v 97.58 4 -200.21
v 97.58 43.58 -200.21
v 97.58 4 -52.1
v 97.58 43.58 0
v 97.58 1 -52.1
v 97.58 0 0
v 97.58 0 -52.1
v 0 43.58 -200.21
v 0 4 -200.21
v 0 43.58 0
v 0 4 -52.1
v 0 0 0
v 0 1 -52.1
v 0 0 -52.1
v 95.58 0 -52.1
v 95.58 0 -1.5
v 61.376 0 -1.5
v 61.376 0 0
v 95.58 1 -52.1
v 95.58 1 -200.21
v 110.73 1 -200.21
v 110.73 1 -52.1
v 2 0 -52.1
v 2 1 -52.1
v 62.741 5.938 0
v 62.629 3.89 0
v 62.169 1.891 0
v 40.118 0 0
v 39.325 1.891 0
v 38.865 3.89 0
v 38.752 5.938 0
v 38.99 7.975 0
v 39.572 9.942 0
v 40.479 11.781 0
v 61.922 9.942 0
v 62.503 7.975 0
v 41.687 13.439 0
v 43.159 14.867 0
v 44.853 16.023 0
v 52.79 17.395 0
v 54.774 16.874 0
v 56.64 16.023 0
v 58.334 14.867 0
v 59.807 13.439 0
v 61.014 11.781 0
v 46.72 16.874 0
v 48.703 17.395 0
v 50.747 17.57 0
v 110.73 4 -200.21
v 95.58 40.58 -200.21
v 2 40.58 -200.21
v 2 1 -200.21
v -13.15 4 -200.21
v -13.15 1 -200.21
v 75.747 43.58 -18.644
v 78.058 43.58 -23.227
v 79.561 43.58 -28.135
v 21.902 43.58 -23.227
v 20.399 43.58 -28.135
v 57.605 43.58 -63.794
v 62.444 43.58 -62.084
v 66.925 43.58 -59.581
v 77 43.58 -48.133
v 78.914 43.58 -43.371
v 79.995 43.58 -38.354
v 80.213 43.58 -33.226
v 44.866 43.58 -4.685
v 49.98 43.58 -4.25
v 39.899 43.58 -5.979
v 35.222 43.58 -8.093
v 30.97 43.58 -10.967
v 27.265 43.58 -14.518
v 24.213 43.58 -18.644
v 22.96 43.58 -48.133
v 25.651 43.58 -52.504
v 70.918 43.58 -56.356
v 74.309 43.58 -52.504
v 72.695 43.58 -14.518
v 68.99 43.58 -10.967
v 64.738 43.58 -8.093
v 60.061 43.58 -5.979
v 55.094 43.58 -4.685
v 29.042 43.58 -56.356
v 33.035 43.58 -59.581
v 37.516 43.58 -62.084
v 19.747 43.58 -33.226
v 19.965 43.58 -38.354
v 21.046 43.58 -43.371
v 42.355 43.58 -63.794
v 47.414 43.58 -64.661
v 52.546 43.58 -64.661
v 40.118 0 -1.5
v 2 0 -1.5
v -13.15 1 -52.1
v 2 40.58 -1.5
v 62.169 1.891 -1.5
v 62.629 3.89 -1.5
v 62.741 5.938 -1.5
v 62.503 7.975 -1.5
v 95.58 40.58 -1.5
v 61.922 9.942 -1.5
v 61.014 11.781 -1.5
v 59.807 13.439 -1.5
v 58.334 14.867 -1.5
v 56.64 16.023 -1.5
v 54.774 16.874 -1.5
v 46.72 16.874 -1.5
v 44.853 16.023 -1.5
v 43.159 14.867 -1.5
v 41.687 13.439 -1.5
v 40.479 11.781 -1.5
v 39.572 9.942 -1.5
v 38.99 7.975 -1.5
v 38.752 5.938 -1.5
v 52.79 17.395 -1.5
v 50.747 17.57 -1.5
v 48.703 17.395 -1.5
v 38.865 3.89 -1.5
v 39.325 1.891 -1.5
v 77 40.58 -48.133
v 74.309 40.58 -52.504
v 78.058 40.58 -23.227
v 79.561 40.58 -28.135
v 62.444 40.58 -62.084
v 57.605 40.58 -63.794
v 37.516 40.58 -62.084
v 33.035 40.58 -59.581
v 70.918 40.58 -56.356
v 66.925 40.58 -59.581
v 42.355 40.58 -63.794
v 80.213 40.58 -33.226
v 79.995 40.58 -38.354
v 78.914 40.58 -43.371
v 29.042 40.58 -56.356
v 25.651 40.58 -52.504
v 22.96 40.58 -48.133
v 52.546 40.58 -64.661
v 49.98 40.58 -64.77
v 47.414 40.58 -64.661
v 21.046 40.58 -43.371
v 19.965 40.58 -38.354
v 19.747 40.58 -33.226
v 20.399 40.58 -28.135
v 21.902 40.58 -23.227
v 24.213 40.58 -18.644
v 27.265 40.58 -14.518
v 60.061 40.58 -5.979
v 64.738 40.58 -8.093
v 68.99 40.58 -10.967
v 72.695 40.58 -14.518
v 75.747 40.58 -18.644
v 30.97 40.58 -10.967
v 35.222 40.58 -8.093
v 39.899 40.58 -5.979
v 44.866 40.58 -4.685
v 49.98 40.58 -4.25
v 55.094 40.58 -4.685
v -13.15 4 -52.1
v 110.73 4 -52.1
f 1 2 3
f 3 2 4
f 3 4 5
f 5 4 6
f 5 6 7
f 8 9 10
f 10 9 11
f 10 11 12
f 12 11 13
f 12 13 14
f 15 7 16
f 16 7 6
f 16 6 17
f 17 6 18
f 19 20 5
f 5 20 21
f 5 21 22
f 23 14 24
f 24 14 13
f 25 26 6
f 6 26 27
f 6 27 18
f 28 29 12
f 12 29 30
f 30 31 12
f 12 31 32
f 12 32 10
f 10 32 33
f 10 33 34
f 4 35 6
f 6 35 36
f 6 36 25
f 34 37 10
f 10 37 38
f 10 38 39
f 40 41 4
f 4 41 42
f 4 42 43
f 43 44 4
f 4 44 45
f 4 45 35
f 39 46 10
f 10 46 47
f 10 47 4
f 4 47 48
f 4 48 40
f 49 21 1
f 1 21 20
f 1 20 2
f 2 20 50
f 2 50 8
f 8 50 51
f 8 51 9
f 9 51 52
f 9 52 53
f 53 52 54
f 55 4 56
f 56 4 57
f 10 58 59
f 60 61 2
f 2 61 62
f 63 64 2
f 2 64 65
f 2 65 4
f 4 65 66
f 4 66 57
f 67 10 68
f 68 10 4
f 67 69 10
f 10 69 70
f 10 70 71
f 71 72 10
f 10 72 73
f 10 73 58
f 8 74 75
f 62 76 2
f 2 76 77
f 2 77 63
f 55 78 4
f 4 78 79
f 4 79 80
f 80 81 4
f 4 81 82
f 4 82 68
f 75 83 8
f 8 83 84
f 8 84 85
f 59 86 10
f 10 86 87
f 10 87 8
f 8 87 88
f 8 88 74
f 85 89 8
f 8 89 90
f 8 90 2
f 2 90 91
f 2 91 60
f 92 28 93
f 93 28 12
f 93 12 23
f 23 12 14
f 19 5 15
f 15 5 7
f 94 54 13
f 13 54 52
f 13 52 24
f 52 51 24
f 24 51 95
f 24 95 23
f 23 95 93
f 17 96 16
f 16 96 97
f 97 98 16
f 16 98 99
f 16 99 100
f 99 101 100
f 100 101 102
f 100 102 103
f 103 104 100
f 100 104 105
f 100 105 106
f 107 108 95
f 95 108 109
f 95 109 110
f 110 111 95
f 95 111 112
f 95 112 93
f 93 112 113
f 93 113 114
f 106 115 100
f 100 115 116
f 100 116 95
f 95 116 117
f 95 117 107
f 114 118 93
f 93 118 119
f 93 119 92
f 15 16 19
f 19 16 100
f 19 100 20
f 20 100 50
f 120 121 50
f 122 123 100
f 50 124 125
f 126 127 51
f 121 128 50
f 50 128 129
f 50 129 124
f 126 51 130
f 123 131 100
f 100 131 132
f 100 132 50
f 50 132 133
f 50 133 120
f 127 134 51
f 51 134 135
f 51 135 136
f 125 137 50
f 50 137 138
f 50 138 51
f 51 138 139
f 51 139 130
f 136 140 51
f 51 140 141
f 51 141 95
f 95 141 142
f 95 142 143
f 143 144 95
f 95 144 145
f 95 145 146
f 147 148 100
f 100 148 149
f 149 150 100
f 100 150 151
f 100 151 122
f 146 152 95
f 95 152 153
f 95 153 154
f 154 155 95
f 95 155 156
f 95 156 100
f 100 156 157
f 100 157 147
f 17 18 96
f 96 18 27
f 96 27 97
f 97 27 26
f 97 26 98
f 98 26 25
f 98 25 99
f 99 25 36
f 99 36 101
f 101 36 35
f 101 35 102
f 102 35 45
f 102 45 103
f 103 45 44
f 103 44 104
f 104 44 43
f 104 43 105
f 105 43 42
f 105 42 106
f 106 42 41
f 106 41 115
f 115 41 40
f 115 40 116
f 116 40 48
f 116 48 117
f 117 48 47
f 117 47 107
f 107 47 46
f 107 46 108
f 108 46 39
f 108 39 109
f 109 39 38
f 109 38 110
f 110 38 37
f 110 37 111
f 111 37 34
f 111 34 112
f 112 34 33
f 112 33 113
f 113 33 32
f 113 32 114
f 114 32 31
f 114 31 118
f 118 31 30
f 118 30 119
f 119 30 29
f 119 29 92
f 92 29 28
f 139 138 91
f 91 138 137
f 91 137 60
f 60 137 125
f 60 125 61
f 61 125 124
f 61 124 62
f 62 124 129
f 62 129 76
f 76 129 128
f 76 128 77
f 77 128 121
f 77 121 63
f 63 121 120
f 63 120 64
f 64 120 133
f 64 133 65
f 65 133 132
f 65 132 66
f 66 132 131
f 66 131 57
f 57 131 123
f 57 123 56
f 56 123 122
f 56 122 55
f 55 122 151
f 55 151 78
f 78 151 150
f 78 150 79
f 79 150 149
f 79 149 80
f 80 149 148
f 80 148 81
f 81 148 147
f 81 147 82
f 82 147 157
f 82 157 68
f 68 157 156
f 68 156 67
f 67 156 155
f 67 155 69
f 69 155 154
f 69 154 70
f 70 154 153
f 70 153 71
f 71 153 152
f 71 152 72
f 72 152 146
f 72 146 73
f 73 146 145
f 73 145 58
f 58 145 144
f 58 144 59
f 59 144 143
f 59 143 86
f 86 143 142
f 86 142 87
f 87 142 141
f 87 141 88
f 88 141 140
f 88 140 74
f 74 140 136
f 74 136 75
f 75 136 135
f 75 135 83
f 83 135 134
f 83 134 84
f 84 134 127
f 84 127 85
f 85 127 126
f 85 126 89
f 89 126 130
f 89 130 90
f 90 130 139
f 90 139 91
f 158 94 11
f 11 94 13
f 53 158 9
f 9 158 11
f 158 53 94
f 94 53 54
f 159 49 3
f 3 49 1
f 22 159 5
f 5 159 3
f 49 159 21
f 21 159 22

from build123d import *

# Parameters (mm, degrees)
SKETCH1_W           = 97.58
SKETCH1_H           = 200.21
BOSS_EXTRUDE1_DEPTH = 43.58
SKETCH2_W           = 2
SKETCH2_H           = 148.11
CUT_EXTRUDE1_DEPTH  = 1
SKETCH3_W           = 148.11
SKETCH3_H           = 1
CUT_EXTRUDE2_DEPTH  = 100
SKETCH4_W           = 93.58
SKETCH4_H           = 50.6
CUT_EXTRUDE4_DEPTH  = 40.58
SKETCH5_W           = 93.58
SKETCH5_H           = 148.11
CUT_EXTRUDE5_DEPTH  = 39.58
SKETCH6_R           = 12
CUT_EXTRUDE6_DEPTH  = 39.58
SKETCH7_R           = 30.26
CUT_EXTRUDE7_DEPTH  = 39.58
SKETCH10_W          = 148.11
SKETCH10_H          = 3
BOSS_EXTRUDE2_DEPTH = 13.15
SKETCH11_W          = 148.11
SKETCH11_H          = 3
BOSS_EXTRUDE3_DEPTH = 13.15


with BuildPart() as part:
    # Sketch1 → Boss-Extrude1 (new body)
    with BuildSketch(Plane(origin=(0, 0, 0), x_dir=(1, 0, 0), z_dir=(0, 1, 0))):
        with Locations((48.79, 100.105)):
            Rectangle(SKETCH1_W, SKETCH1_H)
    extrude(amount=BOSS_EXTRUDE1_DEPTH)

    # Sketch2 → Cut-Extrude1 (cut)
    with BuildSketch(Plane.XZ):
        with Locations((1, -126.155)):
            Rectangle(SKETCH2_W, SKETCH2_H)
    extrude(amount=-CUT_EXTRUDE1_DEPTH, mode=Mode.SUBTRACT)

    # Sketch3 → Cut-Extrude2 (cut)
    with BuildSketch(Plane.ZY.offset(-2)):
        with Locations((-126.155, 0.5)):
            Rectangle(SKETCH3_W, SKETCH3_H)
    extrude(amount=-CUT_EXTRUDE2_DEPTH, mode=Mode.SUBTRACT)

    # Sketch4 → Cut-Extrude4 (cut)
    with BuildSketch(Plane(origin=(0, 0, 0), x_dir=(-1, 0, 0), z_dir=(0, -1, 0))):
        with Locations((-48.79, 26.8)):
            Rectangle(SKETCH4_W, SKETCH4_H)
    extrude(amount=-CUT_EXTRUDE4_DEPTH, mode=Mode.SUBTRACT)

    # Sketch5 → Cut-Extrude5 (cut)
    with BuildSketch(Plane(origin=(0, 1, 0), x_dir=(-1, 0, 0), z_dir=(0, -1, 0))):
        with Locations((-48.79, 126.155)):
            Rectangle(SKETCH5_W, SKETCH5_H)
    extrude(amount=-CUT_EXTRUDE5_DEPTH, mode=Mode.SUBTRACT)

    # Sketch6 → Cut-Extrude6 (cut)
    with BuildSketch(Plane.XY):
        with Locations((50.746792762, 5.57)):
            Circle(SKETCH6_R)
    extrude(amount=-CUT_EXTRUDE6_DEPTH, mode=Mode.SUBTRACT)

    # Sketch7 → Cut-Extrude7 (cut)
    with BuildSketch(Plane(origin=(0, 43.58, 0), x_dir=(1, 0, 0), z_dir=(0, 1, 0))):
        with Locations(Location((49.98, 34.51, 0), (0, 0, 270))):
            Circle(SKETCH7_R)
    extrude(amount=-CUT_EXTRUDE7_DEPTH, mode=Mode.SUBTRACT)

    # Sketch10 → Boss-Extrude2 (add)
    with BuildSketch(Plane.ZY):
        with Locations((-126.155, 2.5)):
            Rectangle(SKETCH10_W, SKETCH10_H)
    extrude(amount=BOSS_EXTRUDE2_DEPTH)

    # Sketch11 → Boss-Extrude3 (add)
    with BuildSketch(Plane(origin=(97.58, 0, 0), x_dir=(0, 0, -1), z_dir=(1, 0, 0))):
        with Locations((126.155, 2.5)):
            Rectangle(SKETCH11_W, SKETCH11_H)
    extrude(amount=BOSS_EXTRUDE3_DEPTH)


solid = part.part
